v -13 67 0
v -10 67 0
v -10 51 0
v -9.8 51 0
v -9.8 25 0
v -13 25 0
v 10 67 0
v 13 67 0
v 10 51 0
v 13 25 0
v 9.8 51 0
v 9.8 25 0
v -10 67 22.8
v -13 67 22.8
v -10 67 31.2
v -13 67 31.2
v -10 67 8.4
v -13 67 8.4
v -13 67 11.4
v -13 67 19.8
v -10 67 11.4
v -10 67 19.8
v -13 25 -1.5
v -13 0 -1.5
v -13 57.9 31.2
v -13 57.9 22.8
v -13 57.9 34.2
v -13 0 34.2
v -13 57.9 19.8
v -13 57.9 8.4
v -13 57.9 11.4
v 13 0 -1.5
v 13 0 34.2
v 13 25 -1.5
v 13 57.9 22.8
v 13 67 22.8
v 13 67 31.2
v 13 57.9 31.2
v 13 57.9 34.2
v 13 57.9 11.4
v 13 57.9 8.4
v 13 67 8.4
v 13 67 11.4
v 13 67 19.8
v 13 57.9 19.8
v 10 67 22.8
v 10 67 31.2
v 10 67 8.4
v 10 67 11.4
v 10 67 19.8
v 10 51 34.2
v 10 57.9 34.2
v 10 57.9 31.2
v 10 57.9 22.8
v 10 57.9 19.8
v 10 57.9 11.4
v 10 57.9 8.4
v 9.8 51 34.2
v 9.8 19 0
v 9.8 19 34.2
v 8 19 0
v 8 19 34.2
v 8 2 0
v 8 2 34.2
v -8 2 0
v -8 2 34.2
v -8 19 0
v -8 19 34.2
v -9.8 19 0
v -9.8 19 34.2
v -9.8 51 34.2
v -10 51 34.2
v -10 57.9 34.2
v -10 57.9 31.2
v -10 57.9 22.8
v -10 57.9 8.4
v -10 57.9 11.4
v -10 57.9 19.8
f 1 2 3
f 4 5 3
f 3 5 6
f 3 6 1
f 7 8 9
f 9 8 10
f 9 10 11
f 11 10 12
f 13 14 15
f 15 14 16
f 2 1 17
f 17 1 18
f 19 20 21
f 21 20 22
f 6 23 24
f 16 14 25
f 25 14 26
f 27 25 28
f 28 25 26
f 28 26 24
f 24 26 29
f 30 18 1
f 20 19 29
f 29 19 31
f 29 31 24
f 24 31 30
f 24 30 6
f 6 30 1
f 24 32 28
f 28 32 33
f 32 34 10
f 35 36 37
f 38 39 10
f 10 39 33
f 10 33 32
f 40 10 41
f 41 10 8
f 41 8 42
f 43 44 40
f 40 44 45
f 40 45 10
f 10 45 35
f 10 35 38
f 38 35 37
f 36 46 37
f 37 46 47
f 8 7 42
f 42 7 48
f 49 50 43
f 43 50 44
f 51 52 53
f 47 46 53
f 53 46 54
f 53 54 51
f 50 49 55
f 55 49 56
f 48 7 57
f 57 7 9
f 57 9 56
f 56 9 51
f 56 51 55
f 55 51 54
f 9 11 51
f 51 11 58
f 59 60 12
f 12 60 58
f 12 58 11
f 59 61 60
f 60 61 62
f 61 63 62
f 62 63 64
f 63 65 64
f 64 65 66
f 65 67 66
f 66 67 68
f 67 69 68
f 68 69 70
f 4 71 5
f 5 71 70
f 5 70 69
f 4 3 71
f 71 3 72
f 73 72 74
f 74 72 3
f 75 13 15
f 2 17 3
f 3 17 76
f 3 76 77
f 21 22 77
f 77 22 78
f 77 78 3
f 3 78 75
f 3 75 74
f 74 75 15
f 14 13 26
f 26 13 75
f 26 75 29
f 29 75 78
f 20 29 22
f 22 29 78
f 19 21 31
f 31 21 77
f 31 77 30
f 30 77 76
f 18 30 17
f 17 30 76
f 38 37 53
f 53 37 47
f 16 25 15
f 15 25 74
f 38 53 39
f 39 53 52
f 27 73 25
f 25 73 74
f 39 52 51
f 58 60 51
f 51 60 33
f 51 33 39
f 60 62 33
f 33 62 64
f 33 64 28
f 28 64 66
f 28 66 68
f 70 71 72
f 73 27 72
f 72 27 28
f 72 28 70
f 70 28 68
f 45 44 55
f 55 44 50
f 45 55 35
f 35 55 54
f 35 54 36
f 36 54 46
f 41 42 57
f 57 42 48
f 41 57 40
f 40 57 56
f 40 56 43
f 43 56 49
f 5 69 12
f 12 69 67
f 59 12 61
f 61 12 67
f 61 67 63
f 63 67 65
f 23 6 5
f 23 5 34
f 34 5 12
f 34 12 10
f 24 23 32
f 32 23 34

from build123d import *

# Parameters (mm, degrees)
BOSS_EXTRUDE1_DEPTH = 54
SKETCH2_W           = 3
SKETCH2_H           = 9.1
CUT_EXTRUDE1_DEPTH  = 27
SKETCH3_W           = 26
SKETCH3_H           = 25
BOSS_EXTRUDE2_DEPTH = 1.5


with BuildPart() as part:
    # Sketch1 → Boss-Extrude1 (new body)
    with BuildSketch(Plane.XY):
        Polygon((-13, 67), (-13, 0), (13, 0), (13, 67), (10, 67), (10, 51), (9.8, 51), (9.8, 19), (8, 19), (8, 2), (-8, 2), (-8, 19), (-9.8, 19), (-9.8, 51), (-10, 51), (-10, 67), align=None)
    extrude(amount=BOSS_EXTRUDE1_DEPTH)

    # Sketch2 → Cut-Extrude1 (cut, through all)
    with BuildSketch(Plane(origin=(13, 0, 0), x_dir=(0, 0, -1), z_dir=(1, 0, 0))):
        Polygon((-45.6, 57.9), (-45.6, 67), (-54, 67), (-54, 0), (-34.2, 0), (-34.2, 57.9), (-34.2, 67), (-42.6, 67), (-42.6, 57.9), align=None)
        with Locations((-32.7, 62.45)):
            Rectangle(SKETCH2_W, SKETCH2_H)
        with Locations((-21.3, 62.45)):
            Rectangle(SKETCH2_W, SKETCH2_H)
        with Locations((-9.9, 62.45)):
            Rectangle(SKETCH2_W, SKETCH2_H)
        with Locations((-44.1, 62.45)):
            Rectangle(SKETCH2_W, SKETCH2_H)
    extrude(amount=-CUT_EXTRUDE1_DEPTH, mode=Mode.SUBTRACT)

    # Sketch3 → Boss-Extrude2 (add)
    with BuildSketch(Plane(origin=(0, 0, 0), x_dir=(-1, 0, 0), z_dir=(0, 0, -1))):
        with Locations((0, 12.5)):
            Rectangle(SKETCH3_W, SKETCH3_H)
    extrude(amount=BOSS_EXTRUDE2_DEPTH)


solid = part.part
